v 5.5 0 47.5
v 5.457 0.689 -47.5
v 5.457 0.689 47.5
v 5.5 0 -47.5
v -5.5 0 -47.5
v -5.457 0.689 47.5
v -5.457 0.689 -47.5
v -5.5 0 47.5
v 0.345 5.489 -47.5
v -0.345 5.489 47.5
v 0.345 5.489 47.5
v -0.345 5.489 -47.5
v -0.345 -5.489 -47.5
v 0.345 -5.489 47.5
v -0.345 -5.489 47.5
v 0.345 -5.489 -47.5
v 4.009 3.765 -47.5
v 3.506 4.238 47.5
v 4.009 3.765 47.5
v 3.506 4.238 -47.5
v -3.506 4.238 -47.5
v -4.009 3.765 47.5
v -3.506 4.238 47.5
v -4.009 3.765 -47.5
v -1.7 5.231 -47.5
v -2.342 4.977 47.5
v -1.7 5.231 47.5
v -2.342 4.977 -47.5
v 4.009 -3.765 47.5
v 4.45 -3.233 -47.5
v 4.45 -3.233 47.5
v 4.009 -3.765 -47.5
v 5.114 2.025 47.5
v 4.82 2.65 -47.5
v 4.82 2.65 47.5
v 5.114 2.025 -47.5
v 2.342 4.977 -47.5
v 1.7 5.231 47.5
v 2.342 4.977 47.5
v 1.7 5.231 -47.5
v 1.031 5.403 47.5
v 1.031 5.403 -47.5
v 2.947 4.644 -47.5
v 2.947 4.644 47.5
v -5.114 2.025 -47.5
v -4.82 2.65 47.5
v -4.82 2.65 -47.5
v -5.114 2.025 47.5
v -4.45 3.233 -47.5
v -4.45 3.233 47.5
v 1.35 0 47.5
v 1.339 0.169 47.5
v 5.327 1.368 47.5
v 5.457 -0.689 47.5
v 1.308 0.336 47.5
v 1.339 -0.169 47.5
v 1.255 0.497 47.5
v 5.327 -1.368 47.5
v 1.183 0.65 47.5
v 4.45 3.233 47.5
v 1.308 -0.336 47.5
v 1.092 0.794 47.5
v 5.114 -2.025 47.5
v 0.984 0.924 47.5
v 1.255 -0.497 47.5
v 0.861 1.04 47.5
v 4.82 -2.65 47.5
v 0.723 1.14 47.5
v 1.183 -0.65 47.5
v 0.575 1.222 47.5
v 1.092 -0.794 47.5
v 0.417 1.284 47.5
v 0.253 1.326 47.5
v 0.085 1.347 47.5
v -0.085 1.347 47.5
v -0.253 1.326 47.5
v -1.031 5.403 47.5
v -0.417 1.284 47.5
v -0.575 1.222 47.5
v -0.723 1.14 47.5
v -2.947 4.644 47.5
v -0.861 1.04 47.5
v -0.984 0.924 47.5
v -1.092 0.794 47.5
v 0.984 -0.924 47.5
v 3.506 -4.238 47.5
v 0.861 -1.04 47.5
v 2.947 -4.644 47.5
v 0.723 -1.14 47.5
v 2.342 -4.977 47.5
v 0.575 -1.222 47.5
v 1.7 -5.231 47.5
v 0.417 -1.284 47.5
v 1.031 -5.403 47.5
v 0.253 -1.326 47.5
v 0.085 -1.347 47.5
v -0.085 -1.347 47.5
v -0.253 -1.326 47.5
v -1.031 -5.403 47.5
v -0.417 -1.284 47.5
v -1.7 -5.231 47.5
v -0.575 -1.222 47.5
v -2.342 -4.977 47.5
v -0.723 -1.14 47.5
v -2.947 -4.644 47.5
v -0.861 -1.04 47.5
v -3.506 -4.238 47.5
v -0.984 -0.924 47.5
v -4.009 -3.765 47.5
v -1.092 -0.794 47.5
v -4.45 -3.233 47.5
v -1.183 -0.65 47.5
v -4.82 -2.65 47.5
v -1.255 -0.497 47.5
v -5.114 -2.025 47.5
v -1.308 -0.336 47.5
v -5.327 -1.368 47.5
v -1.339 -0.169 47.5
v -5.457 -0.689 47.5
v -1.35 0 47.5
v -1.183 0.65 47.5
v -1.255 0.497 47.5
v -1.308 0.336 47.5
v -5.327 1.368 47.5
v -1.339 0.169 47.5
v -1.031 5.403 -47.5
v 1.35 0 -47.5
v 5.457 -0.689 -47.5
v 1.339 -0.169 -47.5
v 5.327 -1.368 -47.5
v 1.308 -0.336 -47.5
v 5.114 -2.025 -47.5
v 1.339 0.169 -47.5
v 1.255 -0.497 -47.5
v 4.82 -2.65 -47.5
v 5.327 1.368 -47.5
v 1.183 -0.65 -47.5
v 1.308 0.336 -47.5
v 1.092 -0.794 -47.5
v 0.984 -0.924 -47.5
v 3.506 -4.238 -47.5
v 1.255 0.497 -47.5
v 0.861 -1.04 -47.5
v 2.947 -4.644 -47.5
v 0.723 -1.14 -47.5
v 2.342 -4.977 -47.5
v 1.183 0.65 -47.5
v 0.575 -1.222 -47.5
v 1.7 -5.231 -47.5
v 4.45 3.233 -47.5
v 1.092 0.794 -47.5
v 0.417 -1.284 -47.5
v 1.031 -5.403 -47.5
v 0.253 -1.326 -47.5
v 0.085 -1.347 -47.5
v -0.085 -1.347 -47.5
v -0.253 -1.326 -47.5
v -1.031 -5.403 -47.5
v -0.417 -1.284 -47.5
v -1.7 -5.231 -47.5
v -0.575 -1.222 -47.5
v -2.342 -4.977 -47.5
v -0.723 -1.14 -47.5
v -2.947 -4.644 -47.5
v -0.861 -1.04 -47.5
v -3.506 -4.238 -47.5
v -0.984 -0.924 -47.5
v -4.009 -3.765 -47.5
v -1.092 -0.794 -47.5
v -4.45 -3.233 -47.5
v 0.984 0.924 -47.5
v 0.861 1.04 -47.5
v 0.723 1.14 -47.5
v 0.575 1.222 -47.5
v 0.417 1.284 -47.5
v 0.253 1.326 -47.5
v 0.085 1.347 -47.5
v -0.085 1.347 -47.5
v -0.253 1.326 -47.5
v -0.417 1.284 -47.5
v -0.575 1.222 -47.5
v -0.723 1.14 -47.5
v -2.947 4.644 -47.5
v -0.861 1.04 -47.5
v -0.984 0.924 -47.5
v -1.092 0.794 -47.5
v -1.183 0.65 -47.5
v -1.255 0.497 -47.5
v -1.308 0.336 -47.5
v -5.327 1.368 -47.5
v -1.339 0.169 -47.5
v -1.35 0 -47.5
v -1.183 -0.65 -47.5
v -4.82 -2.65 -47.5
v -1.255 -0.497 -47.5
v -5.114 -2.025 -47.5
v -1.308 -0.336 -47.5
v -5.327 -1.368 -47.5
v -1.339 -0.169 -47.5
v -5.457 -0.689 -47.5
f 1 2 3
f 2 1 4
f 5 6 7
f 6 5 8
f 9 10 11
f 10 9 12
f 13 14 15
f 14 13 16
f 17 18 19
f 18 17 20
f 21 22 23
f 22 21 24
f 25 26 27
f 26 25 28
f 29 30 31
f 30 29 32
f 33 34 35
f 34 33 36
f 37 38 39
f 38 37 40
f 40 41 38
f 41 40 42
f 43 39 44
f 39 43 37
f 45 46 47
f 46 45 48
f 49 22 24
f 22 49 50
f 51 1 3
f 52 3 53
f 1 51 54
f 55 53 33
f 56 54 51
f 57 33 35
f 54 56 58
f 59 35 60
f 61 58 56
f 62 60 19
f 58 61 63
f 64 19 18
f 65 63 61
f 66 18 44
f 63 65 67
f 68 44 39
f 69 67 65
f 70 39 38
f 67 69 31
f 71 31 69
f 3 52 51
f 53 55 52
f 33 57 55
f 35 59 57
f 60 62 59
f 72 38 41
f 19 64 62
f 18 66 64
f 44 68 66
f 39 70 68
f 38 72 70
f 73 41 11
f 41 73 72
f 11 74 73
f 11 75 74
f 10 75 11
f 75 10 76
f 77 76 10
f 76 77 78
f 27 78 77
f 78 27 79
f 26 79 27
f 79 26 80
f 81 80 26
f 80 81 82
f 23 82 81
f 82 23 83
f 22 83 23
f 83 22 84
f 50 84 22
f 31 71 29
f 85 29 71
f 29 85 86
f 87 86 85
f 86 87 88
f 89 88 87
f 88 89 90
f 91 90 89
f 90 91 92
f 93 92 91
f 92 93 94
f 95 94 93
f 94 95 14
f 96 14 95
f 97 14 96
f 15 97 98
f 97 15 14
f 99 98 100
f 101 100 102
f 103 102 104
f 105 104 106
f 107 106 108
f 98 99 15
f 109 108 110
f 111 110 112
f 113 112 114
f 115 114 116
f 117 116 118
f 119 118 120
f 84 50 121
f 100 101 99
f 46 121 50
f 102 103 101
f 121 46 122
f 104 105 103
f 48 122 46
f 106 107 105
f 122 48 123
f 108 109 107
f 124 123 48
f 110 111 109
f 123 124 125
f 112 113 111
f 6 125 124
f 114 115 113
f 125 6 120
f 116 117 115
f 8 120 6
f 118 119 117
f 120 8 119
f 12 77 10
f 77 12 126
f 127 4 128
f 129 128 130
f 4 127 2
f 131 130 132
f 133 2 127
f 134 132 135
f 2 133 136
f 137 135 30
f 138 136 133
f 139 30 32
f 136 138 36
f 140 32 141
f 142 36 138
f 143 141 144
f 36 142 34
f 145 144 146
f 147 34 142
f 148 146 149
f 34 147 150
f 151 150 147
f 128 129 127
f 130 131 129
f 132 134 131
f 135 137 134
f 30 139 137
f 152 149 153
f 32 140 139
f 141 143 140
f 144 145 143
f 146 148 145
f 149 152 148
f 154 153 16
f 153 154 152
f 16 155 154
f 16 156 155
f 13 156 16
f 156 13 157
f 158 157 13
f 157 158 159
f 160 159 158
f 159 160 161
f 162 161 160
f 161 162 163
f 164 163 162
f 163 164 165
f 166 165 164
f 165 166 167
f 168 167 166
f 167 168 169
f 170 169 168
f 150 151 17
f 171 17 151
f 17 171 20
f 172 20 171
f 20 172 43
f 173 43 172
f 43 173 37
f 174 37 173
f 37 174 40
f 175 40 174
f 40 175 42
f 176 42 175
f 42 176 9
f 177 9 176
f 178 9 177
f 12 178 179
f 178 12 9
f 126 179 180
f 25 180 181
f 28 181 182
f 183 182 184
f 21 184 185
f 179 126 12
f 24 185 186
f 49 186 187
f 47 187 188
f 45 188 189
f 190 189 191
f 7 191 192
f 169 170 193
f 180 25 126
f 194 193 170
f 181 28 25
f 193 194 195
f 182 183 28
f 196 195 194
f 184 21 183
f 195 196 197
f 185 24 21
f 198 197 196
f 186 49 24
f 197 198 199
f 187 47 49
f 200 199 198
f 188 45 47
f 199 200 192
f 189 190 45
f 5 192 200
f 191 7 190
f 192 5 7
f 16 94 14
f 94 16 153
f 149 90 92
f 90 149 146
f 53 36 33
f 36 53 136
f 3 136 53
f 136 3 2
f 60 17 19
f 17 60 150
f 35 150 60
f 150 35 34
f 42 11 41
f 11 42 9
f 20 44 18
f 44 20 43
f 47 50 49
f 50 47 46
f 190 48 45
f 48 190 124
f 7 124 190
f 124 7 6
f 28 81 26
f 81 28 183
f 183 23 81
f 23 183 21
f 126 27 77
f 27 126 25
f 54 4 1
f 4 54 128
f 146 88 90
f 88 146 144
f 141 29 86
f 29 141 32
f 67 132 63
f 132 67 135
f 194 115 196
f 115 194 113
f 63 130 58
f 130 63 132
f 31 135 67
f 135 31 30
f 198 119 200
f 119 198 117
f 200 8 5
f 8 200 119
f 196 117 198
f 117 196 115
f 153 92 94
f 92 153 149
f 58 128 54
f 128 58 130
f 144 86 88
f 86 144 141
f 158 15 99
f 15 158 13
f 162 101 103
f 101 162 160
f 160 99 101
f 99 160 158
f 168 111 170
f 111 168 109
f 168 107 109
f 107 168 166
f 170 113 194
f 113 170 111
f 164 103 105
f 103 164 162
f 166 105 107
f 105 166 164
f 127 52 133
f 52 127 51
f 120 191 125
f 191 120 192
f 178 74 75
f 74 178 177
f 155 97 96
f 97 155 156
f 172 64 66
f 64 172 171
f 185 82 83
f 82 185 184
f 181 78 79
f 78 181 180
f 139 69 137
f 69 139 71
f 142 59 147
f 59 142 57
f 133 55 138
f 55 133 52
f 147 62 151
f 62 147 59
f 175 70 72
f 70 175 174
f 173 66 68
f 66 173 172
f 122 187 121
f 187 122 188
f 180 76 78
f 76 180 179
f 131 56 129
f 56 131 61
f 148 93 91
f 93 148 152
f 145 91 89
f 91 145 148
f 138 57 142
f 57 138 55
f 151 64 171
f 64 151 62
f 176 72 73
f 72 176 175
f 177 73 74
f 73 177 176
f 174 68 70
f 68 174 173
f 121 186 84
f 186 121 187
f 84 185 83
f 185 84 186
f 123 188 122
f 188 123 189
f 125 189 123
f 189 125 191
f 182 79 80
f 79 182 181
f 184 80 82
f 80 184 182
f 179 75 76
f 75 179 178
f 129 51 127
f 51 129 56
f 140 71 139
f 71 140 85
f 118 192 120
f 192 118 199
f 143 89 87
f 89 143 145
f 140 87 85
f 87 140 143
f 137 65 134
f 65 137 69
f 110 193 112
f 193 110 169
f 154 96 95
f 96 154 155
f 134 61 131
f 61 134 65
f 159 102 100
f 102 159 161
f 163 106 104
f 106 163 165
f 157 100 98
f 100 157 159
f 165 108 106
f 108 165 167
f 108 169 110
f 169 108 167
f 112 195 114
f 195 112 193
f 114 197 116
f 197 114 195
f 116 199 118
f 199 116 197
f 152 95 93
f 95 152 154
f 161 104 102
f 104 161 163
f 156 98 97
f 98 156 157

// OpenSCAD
$fn = 50;


difference() {
	union() {
		translate(v = [0, 0, -47.5000000000]) {
			cylinder(h = 95, r = 5.5000000000);
		}
	}
	union() {
		translate(v = [0, 0, -100.0000000000]) {
			cylinder(h = 200, r = 1.3500000000);
		}
	}
}
